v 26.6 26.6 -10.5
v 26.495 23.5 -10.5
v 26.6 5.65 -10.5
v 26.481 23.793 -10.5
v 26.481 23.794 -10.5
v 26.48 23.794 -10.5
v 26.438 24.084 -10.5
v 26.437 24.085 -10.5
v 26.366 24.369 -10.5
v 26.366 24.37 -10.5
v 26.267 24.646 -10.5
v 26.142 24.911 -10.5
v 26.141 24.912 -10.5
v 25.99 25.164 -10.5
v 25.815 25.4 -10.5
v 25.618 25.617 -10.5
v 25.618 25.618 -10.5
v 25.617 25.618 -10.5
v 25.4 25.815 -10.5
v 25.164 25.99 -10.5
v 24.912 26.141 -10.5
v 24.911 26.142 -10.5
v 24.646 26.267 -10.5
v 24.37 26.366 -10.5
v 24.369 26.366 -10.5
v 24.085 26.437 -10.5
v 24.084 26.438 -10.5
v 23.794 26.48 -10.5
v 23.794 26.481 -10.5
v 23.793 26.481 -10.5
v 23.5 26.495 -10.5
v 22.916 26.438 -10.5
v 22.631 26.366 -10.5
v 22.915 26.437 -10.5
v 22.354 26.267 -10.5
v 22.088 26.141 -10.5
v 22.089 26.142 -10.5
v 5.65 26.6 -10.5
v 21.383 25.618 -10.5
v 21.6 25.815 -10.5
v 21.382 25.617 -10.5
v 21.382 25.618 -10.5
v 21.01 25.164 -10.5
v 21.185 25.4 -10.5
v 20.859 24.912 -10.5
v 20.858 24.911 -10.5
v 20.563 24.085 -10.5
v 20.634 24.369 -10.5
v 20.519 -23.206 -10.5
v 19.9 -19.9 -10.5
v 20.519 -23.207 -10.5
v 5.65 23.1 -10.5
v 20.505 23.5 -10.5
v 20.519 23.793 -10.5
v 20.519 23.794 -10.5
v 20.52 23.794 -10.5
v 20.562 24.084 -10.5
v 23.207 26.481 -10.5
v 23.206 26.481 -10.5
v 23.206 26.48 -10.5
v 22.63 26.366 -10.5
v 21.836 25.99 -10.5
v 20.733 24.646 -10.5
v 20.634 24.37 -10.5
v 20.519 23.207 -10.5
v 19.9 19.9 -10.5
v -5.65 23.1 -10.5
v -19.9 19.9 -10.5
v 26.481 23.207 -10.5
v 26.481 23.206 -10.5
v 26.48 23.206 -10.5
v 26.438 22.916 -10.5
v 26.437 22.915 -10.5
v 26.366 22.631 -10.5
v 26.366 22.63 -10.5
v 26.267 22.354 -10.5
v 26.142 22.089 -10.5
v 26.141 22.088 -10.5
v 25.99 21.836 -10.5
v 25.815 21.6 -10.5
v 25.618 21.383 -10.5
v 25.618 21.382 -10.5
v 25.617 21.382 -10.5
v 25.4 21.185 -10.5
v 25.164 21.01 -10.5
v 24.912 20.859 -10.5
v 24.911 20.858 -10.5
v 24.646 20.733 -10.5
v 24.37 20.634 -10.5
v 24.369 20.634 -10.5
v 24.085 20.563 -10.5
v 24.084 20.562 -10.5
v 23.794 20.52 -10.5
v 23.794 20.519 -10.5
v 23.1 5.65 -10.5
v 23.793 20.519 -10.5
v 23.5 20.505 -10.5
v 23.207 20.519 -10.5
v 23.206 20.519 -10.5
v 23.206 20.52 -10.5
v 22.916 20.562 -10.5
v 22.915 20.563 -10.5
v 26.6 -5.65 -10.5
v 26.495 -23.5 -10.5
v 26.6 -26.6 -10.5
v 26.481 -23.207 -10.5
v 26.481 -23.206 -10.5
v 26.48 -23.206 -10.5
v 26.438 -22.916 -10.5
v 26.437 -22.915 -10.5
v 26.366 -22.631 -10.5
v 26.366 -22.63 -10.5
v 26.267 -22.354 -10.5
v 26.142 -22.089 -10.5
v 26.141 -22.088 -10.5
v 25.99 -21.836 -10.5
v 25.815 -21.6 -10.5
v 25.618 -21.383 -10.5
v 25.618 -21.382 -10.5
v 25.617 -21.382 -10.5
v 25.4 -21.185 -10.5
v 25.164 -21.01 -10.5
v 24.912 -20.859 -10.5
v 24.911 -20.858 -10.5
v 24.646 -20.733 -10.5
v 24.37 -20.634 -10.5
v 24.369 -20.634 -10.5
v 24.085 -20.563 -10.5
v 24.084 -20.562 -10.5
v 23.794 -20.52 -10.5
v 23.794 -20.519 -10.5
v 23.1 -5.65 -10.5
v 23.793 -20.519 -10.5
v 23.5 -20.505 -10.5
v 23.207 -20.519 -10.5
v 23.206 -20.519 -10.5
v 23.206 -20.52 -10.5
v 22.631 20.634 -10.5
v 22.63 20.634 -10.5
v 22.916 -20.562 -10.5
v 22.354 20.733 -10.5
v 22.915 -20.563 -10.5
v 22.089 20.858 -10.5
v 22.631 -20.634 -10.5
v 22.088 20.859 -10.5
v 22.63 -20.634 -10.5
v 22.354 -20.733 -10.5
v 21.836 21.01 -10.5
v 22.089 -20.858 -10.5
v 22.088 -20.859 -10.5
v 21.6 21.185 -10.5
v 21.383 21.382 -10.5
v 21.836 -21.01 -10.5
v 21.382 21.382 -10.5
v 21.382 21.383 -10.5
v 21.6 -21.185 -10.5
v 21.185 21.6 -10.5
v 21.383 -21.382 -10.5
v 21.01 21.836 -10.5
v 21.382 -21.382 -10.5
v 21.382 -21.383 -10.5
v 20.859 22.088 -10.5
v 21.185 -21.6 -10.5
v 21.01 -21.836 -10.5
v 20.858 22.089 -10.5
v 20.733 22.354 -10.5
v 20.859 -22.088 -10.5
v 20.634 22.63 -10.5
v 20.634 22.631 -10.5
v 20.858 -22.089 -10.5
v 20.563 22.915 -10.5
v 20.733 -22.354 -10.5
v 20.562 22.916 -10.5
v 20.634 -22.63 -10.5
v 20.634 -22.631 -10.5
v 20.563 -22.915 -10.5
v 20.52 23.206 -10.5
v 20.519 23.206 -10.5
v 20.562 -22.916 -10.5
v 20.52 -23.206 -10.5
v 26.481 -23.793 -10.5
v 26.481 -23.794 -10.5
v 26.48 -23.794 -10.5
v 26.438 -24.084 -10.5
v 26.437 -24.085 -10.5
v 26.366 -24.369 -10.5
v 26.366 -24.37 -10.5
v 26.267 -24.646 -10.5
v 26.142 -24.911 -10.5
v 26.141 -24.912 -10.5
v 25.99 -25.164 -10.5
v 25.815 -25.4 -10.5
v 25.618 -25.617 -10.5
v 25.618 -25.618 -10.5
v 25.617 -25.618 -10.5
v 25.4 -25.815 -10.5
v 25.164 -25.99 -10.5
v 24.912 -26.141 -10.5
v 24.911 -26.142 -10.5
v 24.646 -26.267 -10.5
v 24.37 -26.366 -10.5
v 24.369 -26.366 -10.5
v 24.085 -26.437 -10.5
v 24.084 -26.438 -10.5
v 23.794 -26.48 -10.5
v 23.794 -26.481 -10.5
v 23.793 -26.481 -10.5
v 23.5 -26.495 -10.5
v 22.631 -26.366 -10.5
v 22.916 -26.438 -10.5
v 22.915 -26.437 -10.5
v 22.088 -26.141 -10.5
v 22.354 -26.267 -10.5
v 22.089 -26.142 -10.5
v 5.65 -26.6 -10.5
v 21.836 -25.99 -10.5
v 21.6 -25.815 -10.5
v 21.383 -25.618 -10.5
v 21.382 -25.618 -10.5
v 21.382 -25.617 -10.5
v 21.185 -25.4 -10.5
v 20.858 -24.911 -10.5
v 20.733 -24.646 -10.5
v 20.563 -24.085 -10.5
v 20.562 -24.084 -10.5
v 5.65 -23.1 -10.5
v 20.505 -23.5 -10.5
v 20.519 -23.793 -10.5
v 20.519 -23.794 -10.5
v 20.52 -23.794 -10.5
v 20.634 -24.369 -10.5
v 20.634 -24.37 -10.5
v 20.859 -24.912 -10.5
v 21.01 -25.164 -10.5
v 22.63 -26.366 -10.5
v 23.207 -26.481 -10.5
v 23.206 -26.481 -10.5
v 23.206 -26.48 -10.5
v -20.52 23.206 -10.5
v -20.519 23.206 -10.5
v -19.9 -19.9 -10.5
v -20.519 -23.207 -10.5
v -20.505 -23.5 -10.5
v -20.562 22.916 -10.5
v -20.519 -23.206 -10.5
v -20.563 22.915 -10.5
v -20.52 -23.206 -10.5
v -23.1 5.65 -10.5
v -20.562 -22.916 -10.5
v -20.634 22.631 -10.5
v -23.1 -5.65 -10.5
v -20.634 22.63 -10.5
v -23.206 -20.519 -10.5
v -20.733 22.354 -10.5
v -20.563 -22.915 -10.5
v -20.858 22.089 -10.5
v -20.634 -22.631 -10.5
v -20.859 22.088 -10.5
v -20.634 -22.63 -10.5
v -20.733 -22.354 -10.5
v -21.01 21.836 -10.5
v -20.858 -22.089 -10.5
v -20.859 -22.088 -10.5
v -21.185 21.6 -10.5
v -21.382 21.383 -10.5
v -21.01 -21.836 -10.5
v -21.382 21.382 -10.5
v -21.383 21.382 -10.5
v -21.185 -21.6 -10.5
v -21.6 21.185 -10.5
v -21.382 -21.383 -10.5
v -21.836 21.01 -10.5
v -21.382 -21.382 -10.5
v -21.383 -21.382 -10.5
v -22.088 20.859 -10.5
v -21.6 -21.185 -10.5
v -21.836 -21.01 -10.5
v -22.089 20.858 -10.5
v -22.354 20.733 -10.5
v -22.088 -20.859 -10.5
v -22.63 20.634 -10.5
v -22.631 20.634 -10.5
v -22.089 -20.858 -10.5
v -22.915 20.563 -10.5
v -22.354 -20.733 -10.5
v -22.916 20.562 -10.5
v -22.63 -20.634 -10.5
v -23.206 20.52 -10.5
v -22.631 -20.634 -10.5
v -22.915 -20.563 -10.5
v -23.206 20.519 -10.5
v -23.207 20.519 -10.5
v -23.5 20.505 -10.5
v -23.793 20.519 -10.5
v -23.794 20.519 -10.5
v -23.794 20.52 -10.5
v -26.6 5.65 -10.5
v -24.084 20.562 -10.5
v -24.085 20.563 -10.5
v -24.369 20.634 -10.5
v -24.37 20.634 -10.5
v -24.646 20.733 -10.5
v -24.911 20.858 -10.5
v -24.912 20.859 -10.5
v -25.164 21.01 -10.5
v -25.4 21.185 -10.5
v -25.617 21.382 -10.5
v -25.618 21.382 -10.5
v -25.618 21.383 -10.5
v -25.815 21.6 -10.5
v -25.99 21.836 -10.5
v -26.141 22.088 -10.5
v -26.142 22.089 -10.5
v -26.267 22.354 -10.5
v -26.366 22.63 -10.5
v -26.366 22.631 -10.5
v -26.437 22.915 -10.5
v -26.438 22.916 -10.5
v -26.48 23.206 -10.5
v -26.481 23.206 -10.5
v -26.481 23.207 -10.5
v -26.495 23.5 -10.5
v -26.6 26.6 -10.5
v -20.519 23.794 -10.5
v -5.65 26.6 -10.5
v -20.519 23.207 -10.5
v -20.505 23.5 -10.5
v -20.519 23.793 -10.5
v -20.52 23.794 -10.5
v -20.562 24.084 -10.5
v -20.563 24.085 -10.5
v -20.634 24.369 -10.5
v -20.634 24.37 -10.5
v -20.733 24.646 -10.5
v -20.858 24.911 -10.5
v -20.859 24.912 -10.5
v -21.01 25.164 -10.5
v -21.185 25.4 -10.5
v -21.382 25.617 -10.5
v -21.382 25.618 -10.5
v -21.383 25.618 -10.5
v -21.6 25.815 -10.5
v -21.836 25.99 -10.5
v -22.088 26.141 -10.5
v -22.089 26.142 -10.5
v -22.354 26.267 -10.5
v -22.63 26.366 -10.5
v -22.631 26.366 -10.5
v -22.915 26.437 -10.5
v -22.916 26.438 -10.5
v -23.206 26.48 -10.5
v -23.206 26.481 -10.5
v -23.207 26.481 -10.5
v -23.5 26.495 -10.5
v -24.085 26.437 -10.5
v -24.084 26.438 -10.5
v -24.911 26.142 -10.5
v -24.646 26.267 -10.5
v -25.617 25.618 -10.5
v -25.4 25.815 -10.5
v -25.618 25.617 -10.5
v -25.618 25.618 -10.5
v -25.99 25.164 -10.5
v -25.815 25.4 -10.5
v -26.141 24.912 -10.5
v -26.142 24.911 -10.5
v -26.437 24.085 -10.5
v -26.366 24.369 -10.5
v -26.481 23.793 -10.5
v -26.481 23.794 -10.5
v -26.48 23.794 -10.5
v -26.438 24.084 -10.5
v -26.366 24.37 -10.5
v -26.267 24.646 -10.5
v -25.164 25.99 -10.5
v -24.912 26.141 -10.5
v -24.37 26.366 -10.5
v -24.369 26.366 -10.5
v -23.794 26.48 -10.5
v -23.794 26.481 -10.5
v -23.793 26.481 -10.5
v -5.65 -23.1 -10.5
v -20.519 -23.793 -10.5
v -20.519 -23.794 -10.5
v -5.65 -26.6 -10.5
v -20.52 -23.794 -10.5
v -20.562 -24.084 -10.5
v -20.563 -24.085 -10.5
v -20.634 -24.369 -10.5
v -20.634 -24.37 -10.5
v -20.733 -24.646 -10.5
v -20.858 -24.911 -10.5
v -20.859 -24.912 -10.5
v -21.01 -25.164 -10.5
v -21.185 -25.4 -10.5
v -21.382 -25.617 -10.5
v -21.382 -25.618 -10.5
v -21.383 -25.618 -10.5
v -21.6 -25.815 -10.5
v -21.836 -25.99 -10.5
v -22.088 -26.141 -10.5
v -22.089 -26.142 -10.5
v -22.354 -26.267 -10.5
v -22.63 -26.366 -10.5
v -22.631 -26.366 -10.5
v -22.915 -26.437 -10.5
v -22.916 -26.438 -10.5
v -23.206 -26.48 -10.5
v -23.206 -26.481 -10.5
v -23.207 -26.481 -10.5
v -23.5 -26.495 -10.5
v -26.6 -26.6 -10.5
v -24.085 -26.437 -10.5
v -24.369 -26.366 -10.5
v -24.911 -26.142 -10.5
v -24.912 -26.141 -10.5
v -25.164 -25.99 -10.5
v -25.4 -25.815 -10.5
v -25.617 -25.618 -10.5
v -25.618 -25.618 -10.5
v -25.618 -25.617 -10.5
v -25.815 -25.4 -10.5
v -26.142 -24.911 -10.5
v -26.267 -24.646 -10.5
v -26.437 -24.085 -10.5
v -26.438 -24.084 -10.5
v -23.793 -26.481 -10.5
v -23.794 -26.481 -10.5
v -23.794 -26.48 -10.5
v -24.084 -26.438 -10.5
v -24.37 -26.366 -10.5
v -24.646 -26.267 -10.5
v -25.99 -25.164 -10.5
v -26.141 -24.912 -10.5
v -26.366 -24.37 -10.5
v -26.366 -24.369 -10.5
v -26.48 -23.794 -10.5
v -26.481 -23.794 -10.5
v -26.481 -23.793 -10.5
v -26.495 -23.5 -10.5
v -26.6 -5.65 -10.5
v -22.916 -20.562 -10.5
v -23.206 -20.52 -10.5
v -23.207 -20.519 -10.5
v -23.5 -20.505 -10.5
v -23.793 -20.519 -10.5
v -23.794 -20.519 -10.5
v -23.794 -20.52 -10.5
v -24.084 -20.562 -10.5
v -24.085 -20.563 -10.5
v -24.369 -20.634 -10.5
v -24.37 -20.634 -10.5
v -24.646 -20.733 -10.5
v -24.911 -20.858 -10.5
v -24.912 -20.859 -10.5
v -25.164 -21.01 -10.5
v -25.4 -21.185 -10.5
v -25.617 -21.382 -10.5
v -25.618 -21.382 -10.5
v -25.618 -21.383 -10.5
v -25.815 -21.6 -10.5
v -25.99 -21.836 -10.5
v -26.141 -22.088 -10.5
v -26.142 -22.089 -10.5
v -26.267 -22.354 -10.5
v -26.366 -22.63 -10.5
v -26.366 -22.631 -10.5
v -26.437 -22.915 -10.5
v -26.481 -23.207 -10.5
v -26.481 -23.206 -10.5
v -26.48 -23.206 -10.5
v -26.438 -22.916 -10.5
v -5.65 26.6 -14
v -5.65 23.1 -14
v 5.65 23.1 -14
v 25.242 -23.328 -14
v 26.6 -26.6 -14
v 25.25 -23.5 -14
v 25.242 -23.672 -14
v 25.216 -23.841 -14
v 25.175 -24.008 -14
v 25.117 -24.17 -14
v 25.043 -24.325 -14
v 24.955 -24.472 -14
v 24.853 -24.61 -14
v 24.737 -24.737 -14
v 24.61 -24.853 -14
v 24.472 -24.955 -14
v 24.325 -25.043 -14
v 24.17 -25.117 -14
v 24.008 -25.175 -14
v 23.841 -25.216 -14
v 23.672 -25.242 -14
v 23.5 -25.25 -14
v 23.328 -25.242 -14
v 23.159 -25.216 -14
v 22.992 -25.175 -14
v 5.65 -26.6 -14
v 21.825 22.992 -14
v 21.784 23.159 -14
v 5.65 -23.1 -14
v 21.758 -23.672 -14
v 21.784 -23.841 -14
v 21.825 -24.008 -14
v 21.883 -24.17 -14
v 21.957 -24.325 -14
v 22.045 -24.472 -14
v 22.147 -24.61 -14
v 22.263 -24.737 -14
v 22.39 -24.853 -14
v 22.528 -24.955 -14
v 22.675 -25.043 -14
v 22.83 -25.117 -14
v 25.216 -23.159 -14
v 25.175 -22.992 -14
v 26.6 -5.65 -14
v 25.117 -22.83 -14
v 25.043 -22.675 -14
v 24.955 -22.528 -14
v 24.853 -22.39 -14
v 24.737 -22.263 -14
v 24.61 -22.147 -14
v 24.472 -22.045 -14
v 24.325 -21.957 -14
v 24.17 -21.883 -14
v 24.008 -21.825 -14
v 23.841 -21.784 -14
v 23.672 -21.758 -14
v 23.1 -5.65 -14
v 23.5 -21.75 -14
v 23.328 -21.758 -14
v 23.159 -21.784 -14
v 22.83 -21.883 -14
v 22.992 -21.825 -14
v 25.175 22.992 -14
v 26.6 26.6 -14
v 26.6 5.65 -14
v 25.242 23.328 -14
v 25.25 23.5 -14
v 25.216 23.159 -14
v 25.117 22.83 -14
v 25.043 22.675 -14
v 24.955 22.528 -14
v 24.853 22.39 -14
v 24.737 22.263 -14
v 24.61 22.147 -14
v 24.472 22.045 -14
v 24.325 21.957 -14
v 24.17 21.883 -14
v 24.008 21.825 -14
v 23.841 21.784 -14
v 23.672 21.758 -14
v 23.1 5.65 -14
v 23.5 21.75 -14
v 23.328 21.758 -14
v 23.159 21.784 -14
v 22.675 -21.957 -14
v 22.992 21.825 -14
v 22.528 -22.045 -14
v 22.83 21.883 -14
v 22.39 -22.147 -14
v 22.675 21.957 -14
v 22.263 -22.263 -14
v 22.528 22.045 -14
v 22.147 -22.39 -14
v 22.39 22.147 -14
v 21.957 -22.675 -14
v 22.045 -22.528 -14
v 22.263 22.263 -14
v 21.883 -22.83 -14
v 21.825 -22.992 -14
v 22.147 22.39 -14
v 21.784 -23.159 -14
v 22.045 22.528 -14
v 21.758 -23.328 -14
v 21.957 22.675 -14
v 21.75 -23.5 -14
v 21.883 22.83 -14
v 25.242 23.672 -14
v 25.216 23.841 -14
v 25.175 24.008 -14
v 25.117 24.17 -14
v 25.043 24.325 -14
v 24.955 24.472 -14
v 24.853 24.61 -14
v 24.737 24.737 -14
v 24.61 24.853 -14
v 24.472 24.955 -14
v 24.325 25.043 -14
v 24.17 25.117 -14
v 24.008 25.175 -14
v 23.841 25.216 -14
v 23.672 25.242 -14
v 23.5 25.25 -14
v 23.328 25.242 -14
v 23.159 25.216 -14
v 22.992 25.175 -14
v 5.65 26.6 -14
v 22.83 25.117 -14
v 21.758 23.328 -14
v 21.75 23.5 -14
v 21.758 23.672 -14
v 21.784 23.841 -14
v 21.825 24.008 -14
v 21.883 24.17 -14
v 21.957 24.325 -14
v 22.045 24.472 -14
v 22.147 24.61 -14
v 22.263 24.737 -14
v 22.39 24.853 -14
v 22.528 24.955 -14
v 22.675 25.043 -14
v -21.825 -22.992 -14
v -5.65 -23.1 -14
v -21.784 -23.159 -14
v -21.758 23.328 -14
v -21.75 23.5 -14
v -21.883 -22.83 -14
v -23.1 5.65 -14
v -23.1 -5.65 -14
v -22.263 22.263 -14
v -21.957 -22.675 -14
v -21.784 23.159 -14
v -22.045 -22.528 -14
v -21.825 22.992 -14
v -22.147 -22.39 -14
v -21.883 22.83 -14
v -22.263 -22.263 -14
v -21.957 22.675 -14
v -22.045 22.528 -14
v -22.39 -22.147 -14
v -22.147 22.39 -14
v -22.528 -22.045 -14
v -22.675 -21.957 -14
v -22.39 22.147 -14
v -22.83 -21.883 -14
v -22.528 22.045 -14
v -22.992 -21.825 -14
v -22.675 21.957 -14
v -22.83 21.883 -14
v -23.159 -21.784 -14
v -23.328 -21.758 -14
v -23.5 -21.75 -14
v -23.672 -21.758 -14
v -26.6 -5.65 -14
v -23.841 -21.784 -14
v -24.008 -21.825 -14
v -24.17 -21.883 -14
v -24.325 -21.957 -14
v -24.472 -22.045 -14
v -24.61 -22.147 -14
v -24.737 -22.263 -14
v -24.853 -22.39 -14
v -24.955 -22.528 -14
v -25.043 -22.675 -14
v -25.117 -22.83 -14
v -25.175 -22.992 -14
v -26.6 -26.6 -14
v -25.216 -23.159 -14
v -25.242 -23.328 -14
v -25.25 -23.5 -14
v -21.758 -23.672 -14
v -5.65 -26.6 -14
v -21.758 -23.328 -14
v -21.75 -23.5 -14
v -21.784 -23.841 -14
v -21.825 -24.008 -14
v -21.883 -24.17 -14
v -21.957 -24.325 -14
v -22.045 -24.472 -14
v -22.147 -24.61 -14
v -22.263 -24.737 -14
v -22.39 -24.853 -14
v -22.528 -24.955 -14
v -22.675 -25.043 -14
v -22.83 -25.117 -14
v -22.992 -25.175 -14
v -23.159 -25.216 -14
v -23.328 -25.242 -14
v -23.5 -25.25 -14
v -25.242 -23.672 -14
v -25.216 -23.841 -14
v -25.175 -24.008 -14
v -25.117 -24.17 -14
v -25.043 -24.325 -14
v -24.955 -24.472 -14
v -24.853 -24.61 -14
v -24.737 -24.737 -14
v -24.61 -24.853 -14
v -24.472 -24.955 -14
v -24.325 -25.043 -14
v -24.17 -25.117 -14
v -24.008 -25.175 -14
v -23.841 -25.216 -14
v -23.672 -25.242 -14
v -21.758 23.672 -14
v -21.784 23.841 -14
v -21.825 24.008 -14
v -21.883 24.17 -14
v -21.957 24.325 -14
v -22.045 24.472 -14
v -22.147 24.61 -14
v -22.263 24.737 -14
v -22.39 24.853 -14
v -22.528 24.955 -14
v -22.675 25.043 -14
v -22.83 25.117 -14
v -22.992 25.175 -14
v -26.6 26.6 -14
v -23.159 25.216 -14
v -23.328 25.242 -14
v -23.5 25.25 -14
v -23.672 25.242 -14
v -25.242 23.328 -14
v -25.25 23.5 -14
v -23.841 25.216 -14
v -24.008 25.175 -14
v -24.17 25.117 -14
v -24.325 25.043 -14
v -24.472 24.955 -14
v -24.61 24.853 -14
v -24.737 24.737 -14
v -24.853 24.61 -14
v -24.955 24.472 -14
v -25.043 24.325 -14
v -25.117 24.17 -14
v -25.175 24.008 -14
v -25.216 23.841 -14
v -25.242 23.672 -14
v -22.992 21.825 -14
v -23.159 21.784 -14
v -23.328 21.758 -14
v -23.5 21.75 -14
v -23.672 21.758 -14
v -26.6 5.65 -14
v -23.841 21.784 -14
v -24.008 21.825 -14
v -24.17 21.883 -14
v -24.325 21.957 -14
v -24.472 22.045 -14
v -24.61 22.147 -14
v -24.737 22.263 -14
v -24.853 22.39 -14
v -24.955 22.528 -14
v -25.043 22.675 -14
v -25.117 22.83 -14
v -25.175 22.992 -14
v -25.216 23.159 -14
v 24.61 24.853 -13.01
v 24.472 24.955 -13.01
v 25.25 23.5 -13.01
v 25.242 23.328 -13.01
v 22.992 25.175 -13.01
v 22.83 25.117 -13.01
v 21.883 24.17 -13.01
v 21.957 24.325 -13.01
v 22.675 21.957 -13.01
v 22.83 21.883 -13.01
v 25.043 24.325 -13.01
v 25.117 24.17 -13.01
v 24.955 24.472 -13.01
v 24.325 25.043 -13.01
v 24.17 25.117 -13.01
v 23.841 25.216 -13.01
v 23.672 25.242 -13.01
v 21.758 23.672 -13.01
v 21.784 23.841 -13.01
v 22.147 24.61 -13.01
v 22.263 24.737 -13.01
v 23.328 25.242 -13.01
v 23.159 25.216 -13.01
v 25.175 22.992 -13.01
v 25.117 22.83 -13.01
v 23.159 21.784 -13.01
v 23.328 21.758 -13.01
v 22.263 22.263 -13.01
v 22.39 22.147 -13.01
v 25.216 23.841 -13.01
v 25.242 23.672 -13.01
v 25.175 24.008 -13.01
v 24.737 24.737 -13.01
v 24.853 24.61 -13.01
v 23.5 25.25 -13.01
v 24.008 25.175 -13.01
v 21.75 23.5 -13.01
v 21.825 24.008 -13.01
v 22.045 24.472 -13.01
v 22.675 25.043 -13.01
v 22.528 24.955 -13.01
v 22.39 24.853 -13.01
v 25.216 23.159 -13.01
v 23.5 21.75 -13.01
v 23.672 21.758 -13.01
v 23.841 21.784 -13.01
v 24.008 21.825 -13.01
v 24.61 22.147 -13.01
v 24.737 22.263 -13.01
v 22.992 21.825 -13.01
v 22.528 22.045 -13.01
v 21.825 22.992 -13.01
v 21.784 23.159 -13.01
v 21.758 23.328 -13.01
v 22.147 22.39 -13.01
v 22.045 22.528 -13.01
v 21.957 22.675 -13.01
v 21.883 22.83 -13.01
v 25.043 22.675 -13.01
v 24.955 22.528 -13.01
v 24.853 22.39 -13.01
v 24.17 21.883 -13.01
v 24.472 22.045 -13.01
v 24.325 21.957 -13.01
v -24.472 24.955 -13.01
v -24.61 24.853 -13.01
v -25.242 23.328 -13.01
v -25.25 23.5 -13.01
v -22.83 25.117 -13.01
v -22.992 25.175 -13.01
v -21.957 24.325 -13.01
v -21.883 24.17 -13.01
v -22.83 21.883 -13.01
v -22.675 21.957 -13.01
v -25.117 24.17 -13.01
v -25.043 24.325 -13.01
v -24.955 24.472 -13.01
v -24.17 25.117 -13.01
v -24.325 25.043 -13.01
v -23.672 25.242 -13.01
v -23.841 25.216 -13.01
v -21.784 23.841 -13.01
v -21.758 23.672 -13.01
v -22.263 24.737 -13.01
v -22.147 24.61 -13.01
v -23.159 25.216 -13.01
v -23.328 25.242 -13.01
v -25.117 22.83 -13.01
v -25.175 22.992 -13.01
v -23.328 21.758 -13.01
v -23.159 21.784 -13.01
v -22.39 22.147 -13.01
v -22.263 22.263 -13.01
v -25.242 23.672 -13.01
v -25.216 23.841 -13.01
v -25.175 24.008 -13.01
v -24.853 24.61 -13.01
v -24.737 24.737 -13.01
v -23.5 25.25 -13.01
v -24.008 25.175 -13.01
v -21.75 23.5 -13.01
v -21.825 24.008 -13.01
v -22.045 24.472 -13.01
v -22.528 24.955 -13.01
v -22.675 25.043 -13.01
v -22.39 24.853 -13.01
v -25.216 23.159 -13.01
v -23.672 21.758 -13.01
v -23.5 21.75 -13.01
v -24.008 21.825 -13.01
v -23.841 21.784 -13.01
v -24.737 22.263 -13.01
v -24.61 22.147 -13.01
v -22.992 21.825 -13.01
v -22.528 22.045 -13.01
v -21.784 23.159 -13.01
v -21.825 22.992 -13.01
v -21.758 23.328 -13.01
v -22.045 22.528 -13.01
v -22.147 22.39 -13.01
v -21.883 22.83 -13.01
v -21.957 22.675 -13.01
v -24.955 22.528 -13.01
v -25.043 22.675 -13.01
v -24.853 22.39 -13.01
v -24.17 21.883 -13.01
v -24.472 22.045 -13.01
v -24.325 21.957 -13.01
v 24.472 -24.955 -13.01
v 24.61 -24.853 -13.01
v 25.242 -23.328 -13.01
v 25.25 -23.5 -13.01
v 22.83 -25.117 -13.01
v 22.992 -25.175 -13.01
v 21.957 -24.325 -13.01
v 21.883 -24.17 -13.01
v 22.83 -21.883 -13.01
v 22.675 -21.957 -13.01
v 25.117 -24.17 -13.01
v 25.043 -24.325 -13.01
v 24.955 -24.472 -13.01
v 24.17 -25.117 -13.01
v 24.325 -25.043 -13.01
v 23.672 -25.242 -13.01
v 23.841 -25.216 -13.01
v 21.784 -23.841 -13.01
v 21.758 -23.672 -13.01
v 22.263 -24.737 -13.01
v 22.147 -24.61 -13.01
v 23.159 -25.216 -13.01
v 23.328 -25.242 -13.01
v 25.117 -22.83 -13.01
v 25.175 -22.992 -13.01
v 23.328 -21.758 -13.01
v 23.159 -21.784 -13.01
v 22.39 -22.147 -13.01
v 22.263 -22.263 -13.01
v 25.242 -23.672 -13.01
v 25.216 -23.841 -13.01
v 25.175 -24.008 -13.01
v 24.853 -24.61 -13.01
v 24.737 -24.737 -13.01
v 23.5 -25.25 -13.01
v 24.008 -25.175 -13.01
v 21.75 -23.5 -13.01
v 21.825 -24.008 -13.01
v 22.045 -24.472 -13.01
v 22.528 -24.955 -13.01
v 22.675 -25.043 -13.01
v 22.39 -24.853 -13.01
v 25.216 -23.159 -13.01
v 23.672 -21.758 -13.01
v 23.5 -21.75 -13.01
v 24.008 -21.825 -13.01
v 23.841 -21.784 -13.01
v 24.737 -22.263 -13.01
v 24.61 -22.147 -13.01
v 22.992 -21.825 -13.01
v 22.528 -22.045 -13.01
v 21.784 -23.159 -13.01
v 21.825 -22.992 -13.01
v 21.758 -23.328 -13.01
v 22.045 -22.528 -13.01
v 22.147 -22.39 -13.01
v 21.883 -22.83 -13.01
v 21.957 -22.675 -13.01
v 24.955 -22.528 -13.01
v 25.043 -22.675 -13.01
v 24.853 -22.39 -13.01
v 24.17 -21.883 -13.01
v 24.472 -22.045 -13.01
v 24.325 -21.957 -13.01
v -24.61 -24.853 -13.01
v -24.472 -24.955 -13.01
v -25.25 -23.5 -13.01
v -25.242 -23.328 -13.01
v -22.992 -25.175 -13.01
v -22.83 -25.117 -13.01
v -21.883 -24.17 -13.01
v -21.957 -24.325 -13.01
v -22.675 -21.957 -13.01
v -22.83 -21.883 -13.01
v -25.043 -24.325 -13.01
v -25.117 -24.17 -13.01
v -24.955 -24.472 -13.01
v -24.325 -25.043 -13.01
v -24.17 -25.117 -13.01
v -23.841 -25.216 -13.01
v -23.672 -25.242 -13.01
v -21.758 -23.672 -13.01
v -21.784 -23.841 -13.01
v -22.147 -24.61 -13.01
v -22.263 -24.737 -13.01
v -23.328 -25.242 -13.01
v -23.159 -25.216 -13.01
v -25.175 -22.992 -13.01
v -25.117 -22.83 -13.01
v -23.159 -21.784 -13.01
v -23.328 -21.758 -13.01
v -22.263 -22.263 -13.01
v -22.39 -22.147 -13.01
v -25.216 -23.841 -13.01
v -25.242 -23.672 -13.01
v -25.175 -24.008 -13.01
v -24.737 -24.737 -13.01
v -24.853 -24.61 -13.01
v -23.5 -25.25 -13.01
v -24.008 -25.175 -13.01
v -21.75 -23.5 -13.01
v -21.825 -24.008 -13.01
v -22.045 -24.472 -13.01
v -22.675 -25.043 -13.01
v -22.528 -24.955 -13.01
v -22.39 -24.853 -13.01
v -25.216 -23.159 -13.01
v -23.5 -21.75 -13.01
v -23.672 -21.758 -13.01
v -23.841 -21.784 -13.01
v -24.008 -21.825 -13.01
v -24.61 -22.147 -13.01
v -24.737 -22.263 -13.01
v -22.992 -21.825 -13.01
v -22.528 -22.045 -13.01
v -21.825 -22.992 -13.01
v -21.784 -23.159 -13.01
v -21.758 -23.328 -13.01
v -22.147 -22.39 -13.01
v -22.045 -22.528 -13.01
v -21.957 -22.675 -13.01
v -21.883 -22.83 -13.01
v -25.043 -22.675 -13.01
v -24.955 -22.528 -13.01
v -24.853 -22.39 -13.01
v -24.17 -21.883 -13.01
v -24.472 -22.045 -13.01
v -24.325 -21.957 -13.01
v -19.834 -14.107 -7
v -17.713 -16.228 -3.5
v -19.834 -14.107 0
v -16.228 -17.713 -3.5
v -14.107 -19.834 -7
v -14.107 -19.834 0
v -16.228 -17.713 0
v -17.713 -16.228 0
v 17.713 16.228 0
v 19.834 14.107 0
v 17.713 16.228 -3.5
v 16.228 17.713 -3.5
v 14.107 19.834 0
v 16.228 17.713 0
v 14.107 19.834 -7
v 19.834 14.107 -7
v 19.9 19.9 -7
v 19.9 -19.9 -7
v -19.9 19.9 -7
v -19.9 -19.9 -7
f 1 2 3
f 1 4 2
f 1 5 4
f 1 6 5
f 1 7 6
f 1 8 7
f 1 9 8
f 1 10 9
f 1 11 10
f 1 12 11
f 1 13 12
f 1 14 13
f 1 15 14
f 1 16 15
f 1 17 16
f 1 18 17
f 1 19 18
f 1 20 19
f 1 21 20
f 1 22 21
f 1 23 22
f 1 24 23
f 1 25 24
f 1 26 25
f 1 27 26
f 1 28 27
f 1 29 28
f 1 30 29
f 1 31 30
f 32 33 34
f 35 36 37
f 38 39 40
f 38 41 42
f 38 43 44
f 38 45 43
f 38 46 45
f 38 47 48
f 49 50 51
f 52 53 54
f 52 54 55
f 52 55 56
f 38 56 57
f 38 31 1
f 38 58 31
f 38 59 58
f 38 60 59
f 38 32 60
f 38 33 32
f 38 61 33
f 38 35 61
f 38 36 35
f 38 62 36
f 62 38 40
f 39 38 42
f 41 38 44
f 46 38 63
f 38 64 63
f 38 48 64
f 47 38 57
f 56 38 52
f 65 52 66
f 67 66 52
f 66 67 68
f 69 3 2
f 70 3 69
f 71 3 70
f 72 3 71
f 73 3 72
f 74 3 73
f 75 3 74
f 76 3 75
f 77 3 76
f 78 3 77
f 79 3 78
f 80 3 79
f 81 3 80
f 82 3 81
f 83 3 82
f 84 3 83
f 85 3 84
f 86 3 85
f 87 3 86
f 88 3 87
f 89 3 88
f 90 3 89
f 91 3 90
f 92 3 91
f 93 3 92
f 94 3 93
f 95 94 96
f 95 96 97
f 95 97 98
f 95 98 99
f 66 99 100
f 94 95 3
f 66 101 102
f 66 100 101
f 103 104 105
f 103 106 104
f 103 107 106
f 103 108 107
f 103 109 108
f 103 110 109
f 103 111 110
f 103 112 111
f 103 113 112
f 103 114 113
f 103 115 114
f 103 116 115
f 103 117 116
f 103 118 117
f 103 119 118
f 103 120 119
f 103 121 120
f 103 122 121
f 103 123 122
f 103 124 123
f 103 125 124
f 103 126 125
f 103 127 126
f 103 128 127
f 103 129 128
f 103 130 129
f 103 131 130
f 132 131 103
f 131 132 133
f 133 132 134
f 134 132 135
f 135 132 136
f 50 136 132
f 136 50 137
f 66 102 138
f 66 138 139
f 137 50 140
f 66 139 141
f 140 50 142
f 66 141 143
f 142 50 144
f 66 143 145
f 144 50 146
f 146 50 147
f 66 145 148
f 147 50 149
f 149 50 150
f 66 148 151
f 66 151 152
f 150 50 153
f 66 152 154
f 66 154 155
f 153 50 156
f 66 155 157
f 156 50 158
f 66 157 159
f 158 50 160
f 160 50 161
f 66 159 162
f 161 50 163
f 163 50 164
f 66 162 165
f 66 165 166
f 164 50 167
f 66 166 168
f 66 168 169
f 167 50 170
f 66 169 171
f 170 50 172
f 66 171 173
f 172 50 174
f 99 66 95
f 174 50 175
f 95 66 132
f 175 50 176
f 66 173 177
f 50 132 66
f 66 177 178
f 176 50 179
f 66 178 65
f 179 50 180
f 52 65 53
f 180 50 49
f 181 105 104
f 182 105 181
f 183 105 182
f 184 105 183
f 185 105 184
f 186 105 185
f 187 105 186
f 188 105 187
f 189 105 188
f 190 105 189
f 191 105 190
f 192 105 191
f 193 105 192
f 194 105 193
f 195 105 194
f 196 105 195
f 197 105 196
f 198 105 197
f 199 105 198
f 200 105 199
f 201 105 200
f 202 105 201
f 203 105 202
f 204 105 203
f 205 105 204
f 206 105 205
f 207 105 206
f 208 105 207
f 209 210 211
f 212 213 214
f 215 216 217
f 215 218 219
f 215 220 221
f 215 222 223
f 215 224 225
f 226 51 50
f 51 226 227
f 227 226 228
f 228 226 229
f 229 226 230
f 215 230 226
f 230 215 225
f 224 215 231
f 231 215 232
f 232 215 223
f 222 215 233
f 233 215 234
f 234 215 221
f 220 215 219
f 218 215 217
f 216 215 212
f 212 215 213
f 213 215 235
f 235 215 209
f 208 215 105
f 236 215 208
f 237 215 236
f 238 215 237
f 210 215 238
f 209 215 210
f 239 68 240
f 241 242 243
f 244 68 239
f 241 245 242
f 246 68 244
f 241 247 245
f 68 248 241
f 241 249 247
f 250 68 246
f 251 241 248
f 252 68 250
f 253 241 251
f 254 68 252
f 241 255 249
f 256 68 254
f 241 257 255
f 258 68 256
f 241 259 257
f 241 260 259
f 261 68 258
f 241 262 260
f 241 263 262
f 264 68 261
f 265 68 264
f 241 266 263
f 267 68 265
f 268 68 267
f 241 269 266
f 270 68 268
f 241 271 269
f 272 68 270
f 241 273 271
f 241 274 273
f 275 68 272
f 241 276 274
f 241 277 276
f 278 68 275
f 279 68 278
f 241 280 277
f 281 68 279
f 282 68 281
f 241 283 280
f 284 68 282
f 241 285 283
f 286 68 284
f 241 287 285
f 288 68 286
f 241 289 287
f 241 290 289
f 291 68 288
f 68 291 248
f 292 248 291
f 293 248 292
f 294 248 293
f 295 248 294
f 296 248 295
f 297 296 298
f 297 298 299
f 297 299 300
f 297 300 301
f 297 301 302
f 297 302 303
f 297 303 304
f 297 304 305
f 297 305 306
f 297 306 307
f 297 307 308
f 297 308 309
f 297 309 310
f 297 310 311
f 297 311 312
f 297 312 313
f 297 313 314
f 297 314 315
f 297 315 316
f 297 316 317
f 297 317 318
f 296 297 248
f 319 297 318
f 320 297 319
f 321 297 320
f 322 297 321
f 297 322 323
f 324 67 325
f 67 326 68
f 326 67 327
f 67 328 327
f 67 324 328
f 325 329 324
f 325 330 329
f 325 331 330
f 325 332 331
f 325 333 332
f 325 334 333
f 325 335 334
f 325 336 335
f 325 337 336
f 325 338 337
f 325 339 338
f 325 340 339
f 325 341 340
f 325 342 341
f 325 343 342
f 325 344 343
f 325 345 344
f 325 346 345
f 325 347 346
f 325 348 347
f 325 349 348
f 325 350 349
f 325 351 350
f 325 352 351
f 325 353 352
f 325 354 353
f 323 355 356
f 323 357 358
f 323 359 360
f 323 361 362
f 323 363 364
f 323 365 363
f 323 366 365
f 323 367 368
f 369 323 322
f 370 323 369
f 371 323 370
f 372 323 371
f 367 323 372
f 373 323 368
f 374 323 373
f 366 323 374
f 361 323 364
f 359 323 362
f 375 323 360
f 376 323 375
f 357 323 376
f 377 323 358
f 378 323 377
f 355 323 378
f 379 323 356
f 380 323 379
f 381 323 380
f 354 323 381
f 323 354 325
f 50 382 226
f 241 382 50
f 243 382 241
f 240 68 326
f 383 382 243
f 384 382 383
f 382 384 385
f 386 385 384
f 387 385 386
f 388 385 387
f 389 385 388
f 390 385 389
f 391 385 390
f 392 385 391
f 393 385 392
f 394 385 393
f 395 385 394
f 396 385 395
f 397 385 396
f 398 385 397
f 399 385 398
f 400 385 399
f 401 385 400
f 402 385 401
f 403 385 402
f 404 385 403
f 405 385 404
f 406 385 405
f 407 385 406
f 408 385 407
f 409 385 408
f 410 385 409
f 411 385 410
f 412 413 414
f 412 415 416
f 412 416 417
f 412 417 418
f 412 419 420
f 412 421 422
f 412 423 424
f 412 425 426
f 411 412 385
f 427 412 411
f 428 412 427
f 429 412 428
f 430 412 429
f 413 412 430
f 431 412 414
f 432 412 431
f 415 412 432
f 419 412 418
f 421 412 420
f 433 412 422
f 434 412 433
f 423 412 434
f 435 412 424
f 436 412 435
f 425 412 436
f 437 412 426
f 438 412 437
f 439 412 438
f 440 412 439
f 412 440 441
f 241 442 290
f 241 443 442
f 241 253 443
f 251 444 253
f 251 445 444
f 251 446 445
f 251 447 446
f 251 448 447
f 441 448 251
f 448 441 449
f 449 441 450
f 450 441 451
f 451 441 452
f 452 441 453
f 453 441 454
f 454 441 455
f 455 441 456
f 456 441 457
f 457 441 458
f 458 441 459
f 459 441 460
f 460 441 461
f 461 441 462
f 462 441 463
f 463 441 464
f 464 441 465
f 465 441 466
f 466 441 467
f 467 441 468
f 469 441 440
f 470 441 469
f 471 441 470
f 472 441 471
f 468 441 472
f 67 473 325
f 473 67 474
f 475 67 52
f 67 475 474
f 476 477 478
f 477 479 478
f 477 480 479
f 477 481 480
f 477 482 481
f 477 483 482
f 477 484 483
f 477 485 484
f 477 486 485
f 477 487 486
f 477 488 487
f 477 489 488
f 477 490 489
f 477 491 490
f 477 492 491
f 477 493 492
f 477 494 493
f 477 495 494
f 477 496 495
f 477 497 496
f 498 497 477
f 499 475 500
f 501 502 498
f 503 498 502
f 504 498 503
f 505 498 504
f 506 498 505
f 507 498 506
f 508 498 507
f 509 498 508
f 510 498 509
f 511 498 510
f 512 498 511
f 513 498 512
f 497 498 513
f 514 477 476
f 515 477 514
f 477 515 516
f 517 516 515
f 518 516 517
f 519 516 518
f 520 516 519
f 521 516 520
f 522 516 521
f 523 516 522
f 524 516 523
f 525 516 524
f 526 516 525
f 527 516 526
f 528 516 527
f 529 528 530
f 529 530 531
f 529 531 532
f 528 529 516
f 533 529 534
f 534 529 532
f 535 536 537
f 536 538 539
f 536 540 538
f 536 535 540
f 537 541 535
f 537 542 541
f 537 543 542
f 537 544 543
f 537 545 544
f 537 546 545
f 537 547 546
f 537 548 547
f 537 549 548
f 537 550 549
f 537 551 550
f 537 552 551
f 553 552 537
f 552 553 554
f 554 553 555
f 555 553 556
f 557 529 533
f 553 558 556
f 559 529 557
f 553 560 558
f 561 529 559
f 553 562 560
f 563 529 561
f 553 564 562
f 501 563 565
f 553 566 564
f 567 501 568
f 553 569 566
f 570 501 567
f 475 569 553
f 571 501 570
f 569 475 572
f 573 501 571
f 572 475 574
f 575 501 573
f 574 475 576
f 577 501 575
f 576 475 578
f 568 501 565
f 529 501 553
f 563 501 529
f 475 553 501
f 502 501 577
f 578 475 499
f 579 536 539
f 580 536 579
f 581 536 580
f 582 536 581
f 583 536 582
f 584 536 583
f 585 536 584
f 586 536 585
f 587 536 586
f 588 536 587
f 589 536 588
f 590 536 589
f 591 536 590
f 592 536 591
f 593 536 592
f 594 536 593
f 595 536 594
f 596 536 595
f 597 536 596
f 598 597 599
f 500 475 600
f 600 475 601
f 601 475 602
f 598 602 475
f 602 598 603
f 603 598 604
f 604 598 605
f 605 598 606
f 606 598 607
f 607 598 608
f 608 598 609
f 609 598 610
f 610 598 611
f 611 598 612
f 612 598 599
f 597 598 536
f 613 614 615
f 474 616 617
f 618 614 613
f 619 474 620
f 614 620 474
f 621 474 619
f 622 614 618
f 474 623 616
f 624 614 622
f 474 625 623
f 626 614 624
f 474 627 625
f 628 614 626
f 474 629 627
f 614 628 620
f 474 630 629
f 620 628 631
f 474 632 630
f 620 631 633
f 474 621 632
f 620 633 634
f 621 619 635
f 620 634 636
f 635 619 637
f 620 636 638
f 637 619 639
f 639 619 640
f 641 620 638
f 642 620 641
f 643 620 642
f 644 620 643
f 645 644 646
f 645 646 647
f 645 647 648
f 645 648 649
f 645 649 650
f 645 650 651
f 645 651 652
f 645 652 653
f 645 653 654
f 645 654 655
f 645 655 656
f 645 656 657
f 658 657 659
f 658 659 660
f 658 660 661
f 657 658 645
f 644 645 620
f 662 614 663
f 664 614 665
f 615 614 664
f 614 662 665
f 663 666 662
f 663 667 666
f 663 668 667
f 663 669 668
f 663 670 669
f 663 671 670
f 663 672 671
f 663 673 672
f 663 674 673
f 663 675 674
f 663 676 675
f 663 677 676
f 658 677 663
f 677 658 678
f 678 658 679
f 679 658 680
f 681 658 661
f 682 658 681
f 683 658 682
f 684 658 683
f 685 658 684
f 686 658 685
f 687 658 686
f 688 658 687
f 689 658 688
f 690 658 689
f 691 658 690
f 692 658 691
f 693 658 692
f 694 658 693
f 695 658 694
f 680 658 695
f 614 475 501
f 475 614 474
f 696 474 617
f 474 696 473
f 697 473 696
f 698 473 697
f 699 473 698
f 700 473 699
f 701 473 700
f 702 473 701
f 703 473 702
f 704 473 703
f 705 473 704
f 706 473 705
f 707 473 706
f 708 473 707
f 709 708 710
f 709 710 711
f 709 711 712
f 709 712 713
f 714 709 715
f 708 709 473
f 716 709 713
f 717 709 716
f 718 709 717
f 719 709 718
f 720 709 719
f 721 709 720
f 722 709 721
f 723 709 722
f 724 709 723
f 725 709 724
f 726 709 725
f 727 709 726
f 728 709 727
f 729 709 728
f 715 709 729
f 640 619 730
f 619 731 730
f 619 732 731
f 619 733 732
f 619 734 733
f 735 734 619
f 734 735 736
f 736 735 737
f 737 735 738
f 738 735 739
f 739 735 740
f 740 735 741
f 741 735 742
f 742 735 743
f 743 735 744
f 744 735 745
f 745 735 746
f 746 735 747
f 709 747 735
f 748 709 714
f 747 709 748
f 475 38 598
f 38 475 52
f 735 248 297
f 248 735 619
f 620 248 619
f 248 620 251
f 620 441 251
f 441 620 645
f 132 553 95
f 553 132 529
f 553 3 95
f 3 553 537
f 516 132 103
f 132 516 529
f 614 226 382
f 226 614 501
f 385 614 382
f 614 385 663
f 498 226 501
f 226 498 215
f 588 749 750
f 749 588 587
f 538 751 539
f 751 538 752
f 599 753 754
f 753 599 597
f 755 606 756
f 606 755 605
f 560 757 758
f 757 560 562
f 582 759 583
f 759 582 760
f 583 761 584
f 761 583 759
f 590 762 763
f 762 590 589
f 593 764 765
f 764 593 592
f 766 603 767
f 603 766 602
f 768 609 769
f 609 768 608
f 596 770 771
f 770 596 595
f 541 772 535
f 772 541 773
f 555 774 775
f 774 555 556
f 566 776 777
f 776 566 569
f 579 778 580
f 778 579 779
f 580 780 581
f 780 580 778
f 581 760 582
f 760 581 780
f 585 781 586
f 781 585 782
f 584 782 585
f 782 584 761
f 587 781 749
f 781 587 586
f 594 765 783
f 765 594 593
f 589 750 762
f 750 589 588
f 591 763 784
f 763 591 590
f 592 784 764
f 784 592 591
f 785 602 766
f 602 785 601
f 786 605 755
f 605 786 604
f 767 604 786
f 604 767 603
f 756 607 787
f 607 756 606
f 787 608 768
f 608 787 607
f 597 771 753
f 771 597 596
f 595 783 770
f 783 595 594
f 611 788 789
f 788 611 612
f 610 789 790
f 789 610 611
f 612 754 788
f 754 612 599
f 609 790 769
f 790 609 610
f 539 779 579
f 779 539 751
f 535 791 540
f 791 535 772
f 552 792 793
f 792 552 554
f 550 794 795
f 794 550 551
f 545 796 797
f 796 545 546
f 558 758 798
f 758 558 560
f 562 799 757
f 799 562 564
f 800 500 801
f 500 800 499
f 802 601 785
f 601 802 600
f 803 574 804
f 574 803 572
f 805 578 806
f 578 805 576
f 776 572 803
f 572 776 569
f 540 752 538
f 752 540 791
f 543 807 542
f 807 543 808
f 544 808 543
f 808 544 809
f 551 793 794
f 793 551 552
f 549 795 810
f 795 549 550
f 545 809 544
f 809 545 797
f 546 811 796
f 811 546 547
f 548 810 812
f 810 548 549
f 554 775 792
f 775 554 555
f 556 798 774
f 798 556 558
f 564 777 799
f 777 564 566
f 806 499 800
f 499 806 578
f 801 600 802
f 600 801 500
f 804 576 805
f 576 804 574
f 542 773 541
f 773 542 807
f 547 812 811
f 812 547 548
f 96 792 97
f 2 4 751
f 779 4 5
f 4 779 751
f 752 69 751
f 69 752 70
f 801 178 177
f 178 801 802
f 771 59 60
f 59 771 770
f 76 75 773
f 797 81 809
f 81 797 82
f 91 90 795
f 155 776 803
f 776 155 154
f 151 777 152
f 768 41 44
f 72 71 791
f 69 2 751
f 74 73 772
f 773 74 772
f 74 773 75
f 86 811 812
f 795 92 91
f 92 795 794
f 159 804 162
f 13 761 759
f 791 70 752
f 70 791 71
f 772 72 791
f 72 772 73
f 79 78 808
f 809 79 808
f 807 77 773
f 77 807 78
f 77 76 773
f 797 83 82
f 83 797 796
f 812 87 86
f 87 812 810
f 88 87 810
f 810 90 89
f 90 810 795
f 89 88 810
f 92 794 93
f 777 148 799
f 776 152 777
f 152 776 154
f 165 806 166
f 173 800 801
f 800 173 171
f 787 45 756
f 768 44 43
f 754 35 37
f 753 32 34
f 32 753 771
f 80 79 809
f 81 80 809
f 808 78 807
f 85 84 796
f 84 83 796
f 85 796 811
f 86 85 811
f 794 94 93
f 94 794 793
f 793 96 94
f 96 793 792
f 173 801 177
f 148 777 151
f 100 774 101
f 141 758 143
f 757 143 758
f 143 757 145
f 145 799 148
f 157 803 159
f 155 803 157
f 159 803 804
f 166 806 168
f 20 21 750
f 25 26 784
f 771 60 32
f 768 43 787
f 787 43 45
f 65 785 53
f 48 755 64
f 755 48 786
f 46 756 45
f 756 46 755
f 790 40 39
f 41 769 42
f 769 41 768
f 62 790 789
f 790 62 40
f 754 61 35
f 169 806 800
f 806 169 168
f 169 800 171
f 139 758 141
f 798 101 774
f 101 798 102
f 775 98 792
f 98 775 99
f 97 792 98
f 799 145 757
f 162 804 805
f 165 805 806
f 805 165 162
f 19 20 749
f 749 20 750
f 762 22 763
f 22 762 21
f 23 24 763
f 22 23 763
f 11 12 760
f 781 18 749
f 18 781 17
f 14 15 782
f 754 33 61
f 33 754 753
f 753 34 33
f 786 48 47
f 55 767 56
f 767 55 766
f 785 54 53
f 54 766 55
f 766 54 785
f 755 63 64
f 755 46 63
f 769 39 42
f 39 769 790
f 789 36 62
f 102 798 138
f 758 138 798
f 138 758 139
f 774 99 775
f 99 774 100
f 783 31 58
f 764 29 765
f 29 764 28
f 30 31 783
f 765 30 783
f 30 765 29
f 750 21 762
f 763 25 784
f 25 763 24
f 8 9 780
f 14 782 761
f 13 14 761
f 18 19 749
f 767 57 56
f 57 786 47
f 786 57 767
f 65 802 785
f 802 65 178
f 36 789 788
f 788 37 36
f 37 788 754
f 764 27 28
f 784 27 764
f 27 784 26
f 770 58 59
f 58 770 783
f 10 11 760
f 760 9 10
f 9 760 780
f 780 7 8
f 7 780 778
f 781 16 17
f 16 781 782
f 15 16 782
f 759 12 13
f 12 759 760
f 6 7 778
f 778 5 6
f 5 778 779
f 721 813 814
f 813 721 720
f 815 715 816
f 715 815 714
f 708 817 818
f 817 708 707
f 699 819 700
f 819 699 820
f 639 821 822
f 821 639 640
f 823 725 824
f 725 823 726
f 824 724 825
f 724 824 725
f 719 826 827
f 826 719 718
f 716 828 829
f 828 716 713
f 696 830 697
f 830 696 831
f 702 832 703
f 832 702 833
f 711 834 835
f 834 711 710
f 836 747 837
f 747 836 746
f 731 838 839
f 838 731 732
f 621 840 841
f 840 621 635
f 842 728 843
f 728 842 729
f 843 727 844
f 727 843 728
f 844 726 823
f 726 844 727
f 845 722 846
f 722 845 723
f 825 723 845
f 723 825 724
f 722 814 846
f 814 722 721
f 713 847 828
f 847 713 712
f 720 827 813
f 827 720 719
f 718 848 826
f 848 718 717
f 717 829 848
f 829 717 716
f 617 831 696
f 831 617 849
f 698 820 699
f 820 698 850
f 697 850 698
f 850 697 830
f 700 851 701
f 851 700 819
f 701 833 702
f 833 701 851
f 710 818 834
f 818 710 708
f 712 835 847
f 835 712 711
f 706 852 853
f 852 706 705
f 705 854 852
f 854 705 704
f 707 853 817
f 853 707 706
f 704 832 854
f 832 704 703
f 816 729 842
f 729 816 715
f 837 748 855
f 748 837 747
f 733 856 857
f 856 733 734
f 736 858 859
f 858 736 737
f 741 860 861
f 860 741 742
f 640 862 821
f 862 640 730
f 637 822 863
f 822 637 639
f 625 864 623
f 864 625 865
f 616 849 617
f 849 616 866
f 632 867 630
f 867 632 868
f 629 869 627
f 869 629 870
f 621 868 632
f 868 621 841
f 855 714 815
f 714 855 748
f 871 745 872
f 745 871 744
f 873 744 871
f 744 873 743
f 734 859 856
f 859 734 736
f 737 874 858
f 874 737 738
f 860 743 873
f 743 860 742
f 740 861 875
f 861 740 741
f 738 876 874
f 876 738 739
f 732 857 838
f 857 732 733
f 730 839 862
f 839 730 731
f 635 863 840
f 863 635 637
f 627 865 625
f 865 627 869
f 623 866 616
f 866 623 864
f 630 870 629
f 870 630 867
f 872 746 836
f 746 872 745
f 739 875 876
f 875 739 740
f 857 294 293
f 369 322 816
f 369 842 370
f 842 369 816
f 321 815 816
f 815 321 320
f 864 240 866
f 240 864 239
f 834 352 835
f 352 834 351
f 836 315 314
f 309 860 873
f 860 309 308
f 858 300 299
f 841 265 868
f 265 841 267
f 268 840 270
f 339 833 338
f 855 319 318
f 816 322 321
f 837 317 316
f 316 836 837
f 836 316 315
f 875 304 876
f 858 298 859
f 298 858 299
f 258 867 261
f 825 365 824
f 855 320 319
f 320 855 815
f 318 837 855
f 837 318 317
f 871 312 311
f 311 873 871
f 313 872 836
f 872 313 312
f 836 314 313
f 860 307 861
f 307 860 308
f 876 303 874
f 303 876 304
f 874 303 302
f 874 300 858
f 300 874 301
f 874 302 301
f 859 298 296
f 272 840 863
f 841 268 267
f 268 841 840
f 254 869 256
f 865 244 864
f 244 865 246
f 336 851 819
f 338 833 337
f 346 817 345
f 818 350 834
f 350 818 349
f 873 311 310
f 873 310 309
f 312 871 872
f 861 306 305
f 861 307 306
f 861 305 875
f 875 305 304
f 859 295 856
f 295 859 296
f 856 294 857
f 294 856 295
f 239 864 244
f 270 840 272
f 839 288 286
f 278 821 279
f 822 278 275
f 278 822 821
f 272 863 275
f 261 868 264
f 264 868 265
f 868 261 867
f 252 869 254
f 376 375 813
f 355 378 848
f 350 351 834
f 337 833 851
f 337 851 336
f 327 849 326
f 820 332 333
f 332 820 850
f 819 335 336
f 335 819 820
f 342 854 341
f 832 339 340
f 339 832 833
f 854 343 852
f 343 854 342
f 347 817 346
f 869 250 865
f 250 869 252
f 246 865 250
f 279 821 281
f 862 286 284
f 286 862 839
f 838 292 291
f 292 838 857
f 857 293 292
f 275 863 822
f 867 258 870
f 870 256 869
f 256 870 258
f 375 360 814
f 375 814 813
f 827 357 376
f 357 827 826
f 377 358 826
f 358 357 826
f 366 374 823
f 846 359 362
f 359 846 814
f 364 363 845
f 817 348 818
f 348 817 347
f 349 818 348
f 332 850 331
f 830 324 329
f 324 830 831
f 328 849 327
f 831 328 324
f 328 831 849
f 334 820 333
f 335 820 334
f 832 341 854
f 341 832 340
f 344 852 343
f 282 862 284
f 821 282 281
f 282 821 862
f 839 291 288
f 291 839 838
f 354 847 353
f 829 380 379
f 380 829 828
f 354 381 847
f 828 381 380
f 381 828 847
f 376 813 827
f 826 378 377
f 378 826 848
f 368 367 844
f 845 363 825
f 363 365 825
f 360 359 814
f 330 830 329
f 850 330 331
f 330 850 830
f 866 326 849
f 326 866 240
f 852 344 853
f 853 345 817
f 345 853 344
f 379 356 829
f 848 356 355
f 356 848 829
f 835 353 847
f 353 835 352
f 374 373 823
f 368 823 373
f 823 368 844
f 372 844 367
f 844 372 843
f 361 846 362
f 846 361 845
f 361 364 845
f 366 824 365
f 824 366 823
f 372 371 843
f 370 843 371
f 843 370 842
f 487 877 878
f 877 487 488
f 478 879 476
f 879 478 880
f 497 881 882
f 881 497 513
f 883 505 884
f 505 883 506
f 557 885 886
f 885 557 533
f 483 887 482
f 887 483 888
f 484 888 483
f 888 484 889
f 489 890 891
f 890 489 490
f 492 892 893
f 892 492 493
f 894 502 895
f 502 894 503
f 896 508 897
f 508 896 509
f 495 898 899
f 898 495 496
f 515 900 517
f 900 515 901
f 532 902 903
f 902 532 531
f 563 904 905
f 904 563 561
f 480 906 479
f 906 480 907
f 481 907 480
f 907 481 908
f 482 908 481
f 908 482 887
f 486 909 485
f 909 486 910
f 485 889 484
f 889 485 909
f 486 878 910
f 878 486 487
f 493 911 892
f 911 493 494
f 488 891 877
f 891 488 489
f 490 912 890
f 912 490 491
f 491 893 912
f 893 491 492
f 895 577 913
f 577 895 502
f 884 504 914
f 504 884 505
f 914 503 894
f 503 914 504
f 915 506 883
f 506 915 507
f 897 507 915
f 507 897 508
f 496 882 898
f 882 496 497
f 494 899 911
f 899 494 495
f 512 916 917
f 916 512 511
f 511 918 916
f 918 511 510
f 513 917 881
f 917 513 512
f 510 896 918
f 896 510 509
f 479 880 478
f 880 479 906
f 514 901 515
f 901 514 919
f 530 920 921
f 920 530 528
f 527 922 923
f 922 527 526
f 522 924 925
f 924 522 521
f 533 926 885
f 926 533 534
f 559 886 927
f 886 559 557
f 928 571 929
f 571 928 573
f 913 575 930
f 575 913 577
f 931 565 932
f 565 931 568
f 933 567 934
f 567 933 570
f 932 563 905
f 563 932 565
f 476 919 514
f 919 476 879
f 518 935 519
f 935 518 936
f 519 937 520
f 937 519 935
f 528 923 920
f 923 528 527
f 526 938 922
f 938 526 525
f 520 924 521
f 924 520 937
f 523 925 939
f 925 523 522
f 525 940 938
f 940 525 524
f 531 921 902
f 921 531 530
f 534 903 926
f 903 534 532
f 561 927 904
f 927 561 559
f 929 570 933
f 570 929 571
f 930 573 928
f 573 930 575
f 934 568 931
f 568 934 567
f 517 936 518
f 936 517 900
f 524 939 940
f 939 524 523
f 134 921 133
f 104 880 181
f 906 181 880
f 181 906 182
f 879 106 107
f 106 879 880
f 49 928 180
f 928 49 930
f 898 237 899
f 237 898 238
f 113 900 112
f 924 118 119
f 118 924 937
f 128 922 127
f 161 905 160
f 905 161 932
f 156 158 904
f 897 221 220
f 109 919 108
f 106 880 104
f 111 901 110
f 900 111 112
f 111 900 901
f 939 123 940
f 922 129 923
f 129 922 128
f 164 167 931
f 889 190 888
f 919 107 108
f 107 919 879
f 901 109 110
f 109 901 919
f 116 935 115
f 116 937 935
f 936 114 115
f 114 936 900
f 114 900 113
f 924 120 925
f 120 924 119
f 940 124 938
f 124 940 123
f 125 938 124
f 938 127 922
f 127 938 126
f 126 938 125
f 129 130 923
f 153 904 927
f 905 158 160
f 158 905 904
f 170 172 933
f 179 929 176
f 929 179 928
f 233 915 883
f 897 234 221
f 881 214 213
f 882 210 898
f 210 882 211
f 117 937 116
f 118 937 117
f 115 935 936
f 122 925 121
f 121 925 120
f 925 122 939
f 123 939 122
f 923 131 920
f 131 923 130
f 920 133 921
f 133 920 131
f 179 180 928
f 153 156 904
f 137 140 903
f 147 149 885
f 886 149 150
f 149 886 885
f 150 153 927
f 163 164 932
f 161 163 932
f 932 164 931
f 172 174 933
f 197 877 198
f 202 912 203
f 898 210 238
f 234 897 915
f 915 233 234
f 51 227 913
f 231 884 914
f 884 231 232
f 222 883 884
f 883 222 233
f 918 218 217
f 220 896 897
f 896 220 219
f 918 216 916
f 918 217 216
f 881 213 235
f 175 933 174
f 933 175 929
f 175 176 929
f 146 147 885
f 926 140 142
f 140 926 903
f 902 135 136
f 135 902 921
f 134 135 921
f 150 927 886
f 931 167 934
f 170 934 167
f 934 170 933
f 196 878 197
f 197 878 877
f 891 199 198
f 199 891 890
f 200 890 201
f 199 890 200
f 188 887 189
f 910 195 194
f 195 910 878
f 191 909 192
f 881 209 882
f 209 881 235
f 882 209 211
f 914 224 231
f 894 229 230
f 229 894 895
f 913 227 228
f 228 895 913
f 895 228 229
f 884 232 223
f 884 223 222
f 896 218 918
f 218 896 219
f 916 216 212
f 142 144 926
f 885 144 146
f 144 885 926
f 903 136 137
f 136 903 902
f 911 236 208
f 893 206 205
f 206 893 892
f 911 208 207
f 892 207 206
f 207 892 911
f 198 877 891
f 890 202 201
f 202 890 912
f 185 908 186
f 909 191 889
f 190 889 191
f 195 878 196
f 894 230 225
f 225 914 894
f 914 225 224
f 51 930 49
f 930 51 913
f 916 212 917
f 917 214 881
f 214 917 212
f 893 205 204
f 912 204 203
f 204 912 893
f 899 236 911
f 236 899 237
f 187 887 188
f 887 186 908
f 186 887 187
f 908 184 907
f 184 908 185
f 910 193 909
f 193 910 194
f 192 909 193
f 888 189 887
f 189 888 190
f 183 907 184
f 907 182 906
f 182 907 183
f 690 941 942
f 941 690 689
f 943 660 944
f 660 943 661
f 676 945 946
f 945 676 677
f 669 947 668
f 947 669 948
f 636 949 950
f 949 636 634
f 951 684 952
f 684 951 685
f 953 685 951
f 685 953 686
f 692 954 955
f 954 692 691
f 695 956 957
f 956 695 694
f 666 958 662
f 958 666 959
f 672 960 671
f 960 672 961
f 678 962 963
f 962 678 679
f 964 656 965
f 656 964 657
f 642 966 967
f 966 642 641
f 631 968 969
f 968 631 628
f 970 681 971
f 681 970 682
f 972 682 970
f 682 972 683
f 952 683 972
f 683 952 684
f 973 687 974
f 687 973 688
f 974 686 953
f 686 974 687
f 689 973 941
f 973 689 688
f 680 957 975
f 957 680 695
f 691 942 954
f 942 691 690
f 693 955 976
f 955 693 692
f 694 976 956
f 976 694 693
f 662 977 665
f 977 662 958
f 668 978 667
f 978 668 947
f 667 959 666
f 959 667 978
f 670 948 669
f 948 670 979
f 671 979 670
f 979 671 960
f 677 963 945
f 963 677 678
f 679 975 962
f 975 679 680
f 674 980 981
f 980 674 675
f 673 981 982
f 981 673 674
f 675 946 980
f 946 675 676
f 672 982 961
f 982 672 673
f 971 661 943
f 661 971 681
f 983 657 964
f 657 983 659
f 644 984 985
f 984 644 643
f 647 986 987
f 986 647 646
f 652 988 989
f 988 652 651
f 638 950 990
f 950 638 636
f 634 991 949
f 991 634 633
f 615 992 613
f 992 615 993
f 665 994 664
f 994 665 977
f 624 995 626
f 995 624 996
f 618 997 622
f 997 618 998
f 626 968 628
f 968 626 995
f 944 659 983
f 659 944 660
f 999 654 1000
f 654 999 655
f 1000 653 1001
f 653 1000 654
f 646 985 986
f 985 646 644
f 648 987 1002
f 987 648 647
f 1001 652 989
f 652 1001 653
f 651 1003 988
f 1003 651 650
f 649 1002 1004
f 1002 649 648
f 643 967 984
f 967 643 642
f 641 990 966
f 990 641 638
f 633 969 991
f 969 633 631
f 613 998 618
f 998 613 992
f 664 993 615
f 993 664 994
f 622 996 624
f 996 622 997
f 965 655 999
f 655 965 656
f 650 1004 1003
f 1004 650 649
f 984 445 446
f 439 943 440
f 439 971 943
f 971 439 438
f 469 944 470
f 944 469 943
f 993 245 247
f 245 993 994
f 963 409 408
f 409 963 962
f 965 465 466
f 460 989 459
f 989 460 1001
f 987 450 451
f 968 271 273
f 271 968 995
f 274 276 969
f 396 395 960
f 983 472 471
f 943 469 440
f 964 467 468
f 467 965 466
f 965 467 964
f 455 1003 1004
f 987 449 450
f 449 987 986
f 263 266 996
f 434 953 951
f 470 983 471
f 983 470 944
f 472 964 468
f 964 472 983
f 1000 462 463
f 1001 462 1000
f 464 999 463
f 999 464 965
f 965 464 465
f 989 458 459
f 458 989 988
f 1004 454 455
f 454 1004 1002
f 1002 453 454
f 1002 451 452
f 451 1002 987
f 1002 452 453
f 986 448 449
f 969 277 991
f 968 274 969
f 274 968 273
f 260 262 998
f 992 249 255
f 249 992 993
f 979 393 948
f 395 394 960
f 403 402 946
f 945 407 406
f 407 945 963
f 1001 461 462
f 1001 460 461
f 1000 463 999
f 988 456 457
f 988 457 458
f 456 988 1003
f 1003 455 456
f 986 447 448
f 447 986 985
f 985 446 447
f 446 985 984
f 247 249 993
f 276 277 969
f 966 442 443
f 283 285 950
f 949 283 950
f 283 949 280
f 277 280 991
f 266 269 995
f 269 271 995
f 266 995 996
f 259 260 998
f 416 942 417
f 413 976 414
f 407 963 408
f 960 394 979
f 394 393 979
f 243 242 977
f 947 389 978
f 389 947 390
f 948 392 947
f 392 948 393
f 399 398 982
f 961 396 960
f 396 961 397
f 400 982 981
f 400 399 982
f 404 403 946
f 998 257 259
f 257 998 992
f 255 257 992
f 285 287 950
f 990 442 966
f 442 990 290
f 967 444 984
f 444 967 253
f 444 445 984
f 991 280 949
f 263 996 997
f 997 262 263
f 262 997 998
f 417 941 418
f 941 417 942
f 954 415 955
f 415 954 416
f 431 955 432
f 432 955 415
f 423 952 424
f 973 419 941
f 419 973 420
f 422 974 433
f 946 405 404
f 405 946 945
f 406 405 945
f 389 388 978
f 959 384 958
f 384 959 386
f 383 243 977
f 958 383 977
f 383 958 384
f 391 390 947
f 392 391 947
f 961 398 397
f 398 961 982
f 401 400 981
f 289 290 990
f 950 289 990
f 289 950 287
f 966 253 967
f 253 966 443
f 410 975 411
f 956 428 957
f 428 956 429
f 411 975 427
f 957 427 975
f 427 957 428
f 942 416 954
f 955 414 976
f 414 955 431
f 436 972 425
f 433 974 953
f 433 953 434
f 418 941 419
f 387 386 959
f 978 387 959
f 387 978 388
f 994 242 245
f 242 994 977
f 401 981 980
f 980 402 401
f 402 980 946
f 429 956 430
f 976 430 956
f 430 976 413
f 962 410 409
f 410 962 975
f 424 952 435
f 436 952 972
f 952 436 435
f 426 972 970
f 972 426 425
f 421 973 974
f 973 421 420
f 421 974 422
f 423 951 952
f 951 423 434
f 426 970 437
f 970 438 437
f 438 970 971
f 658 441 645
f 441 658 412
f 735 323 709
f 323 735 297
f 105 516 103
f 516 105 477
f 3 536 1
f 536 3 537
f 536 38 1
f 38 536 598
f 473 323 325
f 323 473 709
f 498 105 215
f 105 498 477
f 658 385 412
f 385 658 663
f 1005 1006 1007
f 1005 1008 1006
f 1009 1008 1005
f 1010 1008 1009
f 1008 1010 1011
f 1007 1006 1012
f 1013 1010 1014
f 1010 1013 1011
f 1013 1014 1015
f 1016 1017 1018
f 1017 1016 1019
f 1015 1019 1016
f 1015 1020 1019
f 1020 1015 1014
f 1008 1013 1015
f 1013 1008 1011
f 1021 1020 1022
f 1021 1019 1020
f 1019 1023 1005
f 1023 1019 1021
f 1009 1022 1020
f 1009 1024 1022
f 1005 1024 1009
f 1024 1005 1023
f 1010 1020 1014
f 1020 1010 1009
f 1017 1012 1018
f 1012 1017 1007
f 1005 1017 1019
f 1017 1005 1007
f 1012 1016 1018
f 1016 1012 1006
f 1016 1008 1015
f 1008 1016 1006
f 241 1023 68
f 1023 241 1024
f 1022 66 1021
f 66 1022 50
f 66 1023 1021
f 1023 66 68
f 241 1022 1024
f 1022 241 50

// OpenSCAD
skip_main_render = true;
include <../../optical_setup.scad>

beamsplitter_mounting_face();
